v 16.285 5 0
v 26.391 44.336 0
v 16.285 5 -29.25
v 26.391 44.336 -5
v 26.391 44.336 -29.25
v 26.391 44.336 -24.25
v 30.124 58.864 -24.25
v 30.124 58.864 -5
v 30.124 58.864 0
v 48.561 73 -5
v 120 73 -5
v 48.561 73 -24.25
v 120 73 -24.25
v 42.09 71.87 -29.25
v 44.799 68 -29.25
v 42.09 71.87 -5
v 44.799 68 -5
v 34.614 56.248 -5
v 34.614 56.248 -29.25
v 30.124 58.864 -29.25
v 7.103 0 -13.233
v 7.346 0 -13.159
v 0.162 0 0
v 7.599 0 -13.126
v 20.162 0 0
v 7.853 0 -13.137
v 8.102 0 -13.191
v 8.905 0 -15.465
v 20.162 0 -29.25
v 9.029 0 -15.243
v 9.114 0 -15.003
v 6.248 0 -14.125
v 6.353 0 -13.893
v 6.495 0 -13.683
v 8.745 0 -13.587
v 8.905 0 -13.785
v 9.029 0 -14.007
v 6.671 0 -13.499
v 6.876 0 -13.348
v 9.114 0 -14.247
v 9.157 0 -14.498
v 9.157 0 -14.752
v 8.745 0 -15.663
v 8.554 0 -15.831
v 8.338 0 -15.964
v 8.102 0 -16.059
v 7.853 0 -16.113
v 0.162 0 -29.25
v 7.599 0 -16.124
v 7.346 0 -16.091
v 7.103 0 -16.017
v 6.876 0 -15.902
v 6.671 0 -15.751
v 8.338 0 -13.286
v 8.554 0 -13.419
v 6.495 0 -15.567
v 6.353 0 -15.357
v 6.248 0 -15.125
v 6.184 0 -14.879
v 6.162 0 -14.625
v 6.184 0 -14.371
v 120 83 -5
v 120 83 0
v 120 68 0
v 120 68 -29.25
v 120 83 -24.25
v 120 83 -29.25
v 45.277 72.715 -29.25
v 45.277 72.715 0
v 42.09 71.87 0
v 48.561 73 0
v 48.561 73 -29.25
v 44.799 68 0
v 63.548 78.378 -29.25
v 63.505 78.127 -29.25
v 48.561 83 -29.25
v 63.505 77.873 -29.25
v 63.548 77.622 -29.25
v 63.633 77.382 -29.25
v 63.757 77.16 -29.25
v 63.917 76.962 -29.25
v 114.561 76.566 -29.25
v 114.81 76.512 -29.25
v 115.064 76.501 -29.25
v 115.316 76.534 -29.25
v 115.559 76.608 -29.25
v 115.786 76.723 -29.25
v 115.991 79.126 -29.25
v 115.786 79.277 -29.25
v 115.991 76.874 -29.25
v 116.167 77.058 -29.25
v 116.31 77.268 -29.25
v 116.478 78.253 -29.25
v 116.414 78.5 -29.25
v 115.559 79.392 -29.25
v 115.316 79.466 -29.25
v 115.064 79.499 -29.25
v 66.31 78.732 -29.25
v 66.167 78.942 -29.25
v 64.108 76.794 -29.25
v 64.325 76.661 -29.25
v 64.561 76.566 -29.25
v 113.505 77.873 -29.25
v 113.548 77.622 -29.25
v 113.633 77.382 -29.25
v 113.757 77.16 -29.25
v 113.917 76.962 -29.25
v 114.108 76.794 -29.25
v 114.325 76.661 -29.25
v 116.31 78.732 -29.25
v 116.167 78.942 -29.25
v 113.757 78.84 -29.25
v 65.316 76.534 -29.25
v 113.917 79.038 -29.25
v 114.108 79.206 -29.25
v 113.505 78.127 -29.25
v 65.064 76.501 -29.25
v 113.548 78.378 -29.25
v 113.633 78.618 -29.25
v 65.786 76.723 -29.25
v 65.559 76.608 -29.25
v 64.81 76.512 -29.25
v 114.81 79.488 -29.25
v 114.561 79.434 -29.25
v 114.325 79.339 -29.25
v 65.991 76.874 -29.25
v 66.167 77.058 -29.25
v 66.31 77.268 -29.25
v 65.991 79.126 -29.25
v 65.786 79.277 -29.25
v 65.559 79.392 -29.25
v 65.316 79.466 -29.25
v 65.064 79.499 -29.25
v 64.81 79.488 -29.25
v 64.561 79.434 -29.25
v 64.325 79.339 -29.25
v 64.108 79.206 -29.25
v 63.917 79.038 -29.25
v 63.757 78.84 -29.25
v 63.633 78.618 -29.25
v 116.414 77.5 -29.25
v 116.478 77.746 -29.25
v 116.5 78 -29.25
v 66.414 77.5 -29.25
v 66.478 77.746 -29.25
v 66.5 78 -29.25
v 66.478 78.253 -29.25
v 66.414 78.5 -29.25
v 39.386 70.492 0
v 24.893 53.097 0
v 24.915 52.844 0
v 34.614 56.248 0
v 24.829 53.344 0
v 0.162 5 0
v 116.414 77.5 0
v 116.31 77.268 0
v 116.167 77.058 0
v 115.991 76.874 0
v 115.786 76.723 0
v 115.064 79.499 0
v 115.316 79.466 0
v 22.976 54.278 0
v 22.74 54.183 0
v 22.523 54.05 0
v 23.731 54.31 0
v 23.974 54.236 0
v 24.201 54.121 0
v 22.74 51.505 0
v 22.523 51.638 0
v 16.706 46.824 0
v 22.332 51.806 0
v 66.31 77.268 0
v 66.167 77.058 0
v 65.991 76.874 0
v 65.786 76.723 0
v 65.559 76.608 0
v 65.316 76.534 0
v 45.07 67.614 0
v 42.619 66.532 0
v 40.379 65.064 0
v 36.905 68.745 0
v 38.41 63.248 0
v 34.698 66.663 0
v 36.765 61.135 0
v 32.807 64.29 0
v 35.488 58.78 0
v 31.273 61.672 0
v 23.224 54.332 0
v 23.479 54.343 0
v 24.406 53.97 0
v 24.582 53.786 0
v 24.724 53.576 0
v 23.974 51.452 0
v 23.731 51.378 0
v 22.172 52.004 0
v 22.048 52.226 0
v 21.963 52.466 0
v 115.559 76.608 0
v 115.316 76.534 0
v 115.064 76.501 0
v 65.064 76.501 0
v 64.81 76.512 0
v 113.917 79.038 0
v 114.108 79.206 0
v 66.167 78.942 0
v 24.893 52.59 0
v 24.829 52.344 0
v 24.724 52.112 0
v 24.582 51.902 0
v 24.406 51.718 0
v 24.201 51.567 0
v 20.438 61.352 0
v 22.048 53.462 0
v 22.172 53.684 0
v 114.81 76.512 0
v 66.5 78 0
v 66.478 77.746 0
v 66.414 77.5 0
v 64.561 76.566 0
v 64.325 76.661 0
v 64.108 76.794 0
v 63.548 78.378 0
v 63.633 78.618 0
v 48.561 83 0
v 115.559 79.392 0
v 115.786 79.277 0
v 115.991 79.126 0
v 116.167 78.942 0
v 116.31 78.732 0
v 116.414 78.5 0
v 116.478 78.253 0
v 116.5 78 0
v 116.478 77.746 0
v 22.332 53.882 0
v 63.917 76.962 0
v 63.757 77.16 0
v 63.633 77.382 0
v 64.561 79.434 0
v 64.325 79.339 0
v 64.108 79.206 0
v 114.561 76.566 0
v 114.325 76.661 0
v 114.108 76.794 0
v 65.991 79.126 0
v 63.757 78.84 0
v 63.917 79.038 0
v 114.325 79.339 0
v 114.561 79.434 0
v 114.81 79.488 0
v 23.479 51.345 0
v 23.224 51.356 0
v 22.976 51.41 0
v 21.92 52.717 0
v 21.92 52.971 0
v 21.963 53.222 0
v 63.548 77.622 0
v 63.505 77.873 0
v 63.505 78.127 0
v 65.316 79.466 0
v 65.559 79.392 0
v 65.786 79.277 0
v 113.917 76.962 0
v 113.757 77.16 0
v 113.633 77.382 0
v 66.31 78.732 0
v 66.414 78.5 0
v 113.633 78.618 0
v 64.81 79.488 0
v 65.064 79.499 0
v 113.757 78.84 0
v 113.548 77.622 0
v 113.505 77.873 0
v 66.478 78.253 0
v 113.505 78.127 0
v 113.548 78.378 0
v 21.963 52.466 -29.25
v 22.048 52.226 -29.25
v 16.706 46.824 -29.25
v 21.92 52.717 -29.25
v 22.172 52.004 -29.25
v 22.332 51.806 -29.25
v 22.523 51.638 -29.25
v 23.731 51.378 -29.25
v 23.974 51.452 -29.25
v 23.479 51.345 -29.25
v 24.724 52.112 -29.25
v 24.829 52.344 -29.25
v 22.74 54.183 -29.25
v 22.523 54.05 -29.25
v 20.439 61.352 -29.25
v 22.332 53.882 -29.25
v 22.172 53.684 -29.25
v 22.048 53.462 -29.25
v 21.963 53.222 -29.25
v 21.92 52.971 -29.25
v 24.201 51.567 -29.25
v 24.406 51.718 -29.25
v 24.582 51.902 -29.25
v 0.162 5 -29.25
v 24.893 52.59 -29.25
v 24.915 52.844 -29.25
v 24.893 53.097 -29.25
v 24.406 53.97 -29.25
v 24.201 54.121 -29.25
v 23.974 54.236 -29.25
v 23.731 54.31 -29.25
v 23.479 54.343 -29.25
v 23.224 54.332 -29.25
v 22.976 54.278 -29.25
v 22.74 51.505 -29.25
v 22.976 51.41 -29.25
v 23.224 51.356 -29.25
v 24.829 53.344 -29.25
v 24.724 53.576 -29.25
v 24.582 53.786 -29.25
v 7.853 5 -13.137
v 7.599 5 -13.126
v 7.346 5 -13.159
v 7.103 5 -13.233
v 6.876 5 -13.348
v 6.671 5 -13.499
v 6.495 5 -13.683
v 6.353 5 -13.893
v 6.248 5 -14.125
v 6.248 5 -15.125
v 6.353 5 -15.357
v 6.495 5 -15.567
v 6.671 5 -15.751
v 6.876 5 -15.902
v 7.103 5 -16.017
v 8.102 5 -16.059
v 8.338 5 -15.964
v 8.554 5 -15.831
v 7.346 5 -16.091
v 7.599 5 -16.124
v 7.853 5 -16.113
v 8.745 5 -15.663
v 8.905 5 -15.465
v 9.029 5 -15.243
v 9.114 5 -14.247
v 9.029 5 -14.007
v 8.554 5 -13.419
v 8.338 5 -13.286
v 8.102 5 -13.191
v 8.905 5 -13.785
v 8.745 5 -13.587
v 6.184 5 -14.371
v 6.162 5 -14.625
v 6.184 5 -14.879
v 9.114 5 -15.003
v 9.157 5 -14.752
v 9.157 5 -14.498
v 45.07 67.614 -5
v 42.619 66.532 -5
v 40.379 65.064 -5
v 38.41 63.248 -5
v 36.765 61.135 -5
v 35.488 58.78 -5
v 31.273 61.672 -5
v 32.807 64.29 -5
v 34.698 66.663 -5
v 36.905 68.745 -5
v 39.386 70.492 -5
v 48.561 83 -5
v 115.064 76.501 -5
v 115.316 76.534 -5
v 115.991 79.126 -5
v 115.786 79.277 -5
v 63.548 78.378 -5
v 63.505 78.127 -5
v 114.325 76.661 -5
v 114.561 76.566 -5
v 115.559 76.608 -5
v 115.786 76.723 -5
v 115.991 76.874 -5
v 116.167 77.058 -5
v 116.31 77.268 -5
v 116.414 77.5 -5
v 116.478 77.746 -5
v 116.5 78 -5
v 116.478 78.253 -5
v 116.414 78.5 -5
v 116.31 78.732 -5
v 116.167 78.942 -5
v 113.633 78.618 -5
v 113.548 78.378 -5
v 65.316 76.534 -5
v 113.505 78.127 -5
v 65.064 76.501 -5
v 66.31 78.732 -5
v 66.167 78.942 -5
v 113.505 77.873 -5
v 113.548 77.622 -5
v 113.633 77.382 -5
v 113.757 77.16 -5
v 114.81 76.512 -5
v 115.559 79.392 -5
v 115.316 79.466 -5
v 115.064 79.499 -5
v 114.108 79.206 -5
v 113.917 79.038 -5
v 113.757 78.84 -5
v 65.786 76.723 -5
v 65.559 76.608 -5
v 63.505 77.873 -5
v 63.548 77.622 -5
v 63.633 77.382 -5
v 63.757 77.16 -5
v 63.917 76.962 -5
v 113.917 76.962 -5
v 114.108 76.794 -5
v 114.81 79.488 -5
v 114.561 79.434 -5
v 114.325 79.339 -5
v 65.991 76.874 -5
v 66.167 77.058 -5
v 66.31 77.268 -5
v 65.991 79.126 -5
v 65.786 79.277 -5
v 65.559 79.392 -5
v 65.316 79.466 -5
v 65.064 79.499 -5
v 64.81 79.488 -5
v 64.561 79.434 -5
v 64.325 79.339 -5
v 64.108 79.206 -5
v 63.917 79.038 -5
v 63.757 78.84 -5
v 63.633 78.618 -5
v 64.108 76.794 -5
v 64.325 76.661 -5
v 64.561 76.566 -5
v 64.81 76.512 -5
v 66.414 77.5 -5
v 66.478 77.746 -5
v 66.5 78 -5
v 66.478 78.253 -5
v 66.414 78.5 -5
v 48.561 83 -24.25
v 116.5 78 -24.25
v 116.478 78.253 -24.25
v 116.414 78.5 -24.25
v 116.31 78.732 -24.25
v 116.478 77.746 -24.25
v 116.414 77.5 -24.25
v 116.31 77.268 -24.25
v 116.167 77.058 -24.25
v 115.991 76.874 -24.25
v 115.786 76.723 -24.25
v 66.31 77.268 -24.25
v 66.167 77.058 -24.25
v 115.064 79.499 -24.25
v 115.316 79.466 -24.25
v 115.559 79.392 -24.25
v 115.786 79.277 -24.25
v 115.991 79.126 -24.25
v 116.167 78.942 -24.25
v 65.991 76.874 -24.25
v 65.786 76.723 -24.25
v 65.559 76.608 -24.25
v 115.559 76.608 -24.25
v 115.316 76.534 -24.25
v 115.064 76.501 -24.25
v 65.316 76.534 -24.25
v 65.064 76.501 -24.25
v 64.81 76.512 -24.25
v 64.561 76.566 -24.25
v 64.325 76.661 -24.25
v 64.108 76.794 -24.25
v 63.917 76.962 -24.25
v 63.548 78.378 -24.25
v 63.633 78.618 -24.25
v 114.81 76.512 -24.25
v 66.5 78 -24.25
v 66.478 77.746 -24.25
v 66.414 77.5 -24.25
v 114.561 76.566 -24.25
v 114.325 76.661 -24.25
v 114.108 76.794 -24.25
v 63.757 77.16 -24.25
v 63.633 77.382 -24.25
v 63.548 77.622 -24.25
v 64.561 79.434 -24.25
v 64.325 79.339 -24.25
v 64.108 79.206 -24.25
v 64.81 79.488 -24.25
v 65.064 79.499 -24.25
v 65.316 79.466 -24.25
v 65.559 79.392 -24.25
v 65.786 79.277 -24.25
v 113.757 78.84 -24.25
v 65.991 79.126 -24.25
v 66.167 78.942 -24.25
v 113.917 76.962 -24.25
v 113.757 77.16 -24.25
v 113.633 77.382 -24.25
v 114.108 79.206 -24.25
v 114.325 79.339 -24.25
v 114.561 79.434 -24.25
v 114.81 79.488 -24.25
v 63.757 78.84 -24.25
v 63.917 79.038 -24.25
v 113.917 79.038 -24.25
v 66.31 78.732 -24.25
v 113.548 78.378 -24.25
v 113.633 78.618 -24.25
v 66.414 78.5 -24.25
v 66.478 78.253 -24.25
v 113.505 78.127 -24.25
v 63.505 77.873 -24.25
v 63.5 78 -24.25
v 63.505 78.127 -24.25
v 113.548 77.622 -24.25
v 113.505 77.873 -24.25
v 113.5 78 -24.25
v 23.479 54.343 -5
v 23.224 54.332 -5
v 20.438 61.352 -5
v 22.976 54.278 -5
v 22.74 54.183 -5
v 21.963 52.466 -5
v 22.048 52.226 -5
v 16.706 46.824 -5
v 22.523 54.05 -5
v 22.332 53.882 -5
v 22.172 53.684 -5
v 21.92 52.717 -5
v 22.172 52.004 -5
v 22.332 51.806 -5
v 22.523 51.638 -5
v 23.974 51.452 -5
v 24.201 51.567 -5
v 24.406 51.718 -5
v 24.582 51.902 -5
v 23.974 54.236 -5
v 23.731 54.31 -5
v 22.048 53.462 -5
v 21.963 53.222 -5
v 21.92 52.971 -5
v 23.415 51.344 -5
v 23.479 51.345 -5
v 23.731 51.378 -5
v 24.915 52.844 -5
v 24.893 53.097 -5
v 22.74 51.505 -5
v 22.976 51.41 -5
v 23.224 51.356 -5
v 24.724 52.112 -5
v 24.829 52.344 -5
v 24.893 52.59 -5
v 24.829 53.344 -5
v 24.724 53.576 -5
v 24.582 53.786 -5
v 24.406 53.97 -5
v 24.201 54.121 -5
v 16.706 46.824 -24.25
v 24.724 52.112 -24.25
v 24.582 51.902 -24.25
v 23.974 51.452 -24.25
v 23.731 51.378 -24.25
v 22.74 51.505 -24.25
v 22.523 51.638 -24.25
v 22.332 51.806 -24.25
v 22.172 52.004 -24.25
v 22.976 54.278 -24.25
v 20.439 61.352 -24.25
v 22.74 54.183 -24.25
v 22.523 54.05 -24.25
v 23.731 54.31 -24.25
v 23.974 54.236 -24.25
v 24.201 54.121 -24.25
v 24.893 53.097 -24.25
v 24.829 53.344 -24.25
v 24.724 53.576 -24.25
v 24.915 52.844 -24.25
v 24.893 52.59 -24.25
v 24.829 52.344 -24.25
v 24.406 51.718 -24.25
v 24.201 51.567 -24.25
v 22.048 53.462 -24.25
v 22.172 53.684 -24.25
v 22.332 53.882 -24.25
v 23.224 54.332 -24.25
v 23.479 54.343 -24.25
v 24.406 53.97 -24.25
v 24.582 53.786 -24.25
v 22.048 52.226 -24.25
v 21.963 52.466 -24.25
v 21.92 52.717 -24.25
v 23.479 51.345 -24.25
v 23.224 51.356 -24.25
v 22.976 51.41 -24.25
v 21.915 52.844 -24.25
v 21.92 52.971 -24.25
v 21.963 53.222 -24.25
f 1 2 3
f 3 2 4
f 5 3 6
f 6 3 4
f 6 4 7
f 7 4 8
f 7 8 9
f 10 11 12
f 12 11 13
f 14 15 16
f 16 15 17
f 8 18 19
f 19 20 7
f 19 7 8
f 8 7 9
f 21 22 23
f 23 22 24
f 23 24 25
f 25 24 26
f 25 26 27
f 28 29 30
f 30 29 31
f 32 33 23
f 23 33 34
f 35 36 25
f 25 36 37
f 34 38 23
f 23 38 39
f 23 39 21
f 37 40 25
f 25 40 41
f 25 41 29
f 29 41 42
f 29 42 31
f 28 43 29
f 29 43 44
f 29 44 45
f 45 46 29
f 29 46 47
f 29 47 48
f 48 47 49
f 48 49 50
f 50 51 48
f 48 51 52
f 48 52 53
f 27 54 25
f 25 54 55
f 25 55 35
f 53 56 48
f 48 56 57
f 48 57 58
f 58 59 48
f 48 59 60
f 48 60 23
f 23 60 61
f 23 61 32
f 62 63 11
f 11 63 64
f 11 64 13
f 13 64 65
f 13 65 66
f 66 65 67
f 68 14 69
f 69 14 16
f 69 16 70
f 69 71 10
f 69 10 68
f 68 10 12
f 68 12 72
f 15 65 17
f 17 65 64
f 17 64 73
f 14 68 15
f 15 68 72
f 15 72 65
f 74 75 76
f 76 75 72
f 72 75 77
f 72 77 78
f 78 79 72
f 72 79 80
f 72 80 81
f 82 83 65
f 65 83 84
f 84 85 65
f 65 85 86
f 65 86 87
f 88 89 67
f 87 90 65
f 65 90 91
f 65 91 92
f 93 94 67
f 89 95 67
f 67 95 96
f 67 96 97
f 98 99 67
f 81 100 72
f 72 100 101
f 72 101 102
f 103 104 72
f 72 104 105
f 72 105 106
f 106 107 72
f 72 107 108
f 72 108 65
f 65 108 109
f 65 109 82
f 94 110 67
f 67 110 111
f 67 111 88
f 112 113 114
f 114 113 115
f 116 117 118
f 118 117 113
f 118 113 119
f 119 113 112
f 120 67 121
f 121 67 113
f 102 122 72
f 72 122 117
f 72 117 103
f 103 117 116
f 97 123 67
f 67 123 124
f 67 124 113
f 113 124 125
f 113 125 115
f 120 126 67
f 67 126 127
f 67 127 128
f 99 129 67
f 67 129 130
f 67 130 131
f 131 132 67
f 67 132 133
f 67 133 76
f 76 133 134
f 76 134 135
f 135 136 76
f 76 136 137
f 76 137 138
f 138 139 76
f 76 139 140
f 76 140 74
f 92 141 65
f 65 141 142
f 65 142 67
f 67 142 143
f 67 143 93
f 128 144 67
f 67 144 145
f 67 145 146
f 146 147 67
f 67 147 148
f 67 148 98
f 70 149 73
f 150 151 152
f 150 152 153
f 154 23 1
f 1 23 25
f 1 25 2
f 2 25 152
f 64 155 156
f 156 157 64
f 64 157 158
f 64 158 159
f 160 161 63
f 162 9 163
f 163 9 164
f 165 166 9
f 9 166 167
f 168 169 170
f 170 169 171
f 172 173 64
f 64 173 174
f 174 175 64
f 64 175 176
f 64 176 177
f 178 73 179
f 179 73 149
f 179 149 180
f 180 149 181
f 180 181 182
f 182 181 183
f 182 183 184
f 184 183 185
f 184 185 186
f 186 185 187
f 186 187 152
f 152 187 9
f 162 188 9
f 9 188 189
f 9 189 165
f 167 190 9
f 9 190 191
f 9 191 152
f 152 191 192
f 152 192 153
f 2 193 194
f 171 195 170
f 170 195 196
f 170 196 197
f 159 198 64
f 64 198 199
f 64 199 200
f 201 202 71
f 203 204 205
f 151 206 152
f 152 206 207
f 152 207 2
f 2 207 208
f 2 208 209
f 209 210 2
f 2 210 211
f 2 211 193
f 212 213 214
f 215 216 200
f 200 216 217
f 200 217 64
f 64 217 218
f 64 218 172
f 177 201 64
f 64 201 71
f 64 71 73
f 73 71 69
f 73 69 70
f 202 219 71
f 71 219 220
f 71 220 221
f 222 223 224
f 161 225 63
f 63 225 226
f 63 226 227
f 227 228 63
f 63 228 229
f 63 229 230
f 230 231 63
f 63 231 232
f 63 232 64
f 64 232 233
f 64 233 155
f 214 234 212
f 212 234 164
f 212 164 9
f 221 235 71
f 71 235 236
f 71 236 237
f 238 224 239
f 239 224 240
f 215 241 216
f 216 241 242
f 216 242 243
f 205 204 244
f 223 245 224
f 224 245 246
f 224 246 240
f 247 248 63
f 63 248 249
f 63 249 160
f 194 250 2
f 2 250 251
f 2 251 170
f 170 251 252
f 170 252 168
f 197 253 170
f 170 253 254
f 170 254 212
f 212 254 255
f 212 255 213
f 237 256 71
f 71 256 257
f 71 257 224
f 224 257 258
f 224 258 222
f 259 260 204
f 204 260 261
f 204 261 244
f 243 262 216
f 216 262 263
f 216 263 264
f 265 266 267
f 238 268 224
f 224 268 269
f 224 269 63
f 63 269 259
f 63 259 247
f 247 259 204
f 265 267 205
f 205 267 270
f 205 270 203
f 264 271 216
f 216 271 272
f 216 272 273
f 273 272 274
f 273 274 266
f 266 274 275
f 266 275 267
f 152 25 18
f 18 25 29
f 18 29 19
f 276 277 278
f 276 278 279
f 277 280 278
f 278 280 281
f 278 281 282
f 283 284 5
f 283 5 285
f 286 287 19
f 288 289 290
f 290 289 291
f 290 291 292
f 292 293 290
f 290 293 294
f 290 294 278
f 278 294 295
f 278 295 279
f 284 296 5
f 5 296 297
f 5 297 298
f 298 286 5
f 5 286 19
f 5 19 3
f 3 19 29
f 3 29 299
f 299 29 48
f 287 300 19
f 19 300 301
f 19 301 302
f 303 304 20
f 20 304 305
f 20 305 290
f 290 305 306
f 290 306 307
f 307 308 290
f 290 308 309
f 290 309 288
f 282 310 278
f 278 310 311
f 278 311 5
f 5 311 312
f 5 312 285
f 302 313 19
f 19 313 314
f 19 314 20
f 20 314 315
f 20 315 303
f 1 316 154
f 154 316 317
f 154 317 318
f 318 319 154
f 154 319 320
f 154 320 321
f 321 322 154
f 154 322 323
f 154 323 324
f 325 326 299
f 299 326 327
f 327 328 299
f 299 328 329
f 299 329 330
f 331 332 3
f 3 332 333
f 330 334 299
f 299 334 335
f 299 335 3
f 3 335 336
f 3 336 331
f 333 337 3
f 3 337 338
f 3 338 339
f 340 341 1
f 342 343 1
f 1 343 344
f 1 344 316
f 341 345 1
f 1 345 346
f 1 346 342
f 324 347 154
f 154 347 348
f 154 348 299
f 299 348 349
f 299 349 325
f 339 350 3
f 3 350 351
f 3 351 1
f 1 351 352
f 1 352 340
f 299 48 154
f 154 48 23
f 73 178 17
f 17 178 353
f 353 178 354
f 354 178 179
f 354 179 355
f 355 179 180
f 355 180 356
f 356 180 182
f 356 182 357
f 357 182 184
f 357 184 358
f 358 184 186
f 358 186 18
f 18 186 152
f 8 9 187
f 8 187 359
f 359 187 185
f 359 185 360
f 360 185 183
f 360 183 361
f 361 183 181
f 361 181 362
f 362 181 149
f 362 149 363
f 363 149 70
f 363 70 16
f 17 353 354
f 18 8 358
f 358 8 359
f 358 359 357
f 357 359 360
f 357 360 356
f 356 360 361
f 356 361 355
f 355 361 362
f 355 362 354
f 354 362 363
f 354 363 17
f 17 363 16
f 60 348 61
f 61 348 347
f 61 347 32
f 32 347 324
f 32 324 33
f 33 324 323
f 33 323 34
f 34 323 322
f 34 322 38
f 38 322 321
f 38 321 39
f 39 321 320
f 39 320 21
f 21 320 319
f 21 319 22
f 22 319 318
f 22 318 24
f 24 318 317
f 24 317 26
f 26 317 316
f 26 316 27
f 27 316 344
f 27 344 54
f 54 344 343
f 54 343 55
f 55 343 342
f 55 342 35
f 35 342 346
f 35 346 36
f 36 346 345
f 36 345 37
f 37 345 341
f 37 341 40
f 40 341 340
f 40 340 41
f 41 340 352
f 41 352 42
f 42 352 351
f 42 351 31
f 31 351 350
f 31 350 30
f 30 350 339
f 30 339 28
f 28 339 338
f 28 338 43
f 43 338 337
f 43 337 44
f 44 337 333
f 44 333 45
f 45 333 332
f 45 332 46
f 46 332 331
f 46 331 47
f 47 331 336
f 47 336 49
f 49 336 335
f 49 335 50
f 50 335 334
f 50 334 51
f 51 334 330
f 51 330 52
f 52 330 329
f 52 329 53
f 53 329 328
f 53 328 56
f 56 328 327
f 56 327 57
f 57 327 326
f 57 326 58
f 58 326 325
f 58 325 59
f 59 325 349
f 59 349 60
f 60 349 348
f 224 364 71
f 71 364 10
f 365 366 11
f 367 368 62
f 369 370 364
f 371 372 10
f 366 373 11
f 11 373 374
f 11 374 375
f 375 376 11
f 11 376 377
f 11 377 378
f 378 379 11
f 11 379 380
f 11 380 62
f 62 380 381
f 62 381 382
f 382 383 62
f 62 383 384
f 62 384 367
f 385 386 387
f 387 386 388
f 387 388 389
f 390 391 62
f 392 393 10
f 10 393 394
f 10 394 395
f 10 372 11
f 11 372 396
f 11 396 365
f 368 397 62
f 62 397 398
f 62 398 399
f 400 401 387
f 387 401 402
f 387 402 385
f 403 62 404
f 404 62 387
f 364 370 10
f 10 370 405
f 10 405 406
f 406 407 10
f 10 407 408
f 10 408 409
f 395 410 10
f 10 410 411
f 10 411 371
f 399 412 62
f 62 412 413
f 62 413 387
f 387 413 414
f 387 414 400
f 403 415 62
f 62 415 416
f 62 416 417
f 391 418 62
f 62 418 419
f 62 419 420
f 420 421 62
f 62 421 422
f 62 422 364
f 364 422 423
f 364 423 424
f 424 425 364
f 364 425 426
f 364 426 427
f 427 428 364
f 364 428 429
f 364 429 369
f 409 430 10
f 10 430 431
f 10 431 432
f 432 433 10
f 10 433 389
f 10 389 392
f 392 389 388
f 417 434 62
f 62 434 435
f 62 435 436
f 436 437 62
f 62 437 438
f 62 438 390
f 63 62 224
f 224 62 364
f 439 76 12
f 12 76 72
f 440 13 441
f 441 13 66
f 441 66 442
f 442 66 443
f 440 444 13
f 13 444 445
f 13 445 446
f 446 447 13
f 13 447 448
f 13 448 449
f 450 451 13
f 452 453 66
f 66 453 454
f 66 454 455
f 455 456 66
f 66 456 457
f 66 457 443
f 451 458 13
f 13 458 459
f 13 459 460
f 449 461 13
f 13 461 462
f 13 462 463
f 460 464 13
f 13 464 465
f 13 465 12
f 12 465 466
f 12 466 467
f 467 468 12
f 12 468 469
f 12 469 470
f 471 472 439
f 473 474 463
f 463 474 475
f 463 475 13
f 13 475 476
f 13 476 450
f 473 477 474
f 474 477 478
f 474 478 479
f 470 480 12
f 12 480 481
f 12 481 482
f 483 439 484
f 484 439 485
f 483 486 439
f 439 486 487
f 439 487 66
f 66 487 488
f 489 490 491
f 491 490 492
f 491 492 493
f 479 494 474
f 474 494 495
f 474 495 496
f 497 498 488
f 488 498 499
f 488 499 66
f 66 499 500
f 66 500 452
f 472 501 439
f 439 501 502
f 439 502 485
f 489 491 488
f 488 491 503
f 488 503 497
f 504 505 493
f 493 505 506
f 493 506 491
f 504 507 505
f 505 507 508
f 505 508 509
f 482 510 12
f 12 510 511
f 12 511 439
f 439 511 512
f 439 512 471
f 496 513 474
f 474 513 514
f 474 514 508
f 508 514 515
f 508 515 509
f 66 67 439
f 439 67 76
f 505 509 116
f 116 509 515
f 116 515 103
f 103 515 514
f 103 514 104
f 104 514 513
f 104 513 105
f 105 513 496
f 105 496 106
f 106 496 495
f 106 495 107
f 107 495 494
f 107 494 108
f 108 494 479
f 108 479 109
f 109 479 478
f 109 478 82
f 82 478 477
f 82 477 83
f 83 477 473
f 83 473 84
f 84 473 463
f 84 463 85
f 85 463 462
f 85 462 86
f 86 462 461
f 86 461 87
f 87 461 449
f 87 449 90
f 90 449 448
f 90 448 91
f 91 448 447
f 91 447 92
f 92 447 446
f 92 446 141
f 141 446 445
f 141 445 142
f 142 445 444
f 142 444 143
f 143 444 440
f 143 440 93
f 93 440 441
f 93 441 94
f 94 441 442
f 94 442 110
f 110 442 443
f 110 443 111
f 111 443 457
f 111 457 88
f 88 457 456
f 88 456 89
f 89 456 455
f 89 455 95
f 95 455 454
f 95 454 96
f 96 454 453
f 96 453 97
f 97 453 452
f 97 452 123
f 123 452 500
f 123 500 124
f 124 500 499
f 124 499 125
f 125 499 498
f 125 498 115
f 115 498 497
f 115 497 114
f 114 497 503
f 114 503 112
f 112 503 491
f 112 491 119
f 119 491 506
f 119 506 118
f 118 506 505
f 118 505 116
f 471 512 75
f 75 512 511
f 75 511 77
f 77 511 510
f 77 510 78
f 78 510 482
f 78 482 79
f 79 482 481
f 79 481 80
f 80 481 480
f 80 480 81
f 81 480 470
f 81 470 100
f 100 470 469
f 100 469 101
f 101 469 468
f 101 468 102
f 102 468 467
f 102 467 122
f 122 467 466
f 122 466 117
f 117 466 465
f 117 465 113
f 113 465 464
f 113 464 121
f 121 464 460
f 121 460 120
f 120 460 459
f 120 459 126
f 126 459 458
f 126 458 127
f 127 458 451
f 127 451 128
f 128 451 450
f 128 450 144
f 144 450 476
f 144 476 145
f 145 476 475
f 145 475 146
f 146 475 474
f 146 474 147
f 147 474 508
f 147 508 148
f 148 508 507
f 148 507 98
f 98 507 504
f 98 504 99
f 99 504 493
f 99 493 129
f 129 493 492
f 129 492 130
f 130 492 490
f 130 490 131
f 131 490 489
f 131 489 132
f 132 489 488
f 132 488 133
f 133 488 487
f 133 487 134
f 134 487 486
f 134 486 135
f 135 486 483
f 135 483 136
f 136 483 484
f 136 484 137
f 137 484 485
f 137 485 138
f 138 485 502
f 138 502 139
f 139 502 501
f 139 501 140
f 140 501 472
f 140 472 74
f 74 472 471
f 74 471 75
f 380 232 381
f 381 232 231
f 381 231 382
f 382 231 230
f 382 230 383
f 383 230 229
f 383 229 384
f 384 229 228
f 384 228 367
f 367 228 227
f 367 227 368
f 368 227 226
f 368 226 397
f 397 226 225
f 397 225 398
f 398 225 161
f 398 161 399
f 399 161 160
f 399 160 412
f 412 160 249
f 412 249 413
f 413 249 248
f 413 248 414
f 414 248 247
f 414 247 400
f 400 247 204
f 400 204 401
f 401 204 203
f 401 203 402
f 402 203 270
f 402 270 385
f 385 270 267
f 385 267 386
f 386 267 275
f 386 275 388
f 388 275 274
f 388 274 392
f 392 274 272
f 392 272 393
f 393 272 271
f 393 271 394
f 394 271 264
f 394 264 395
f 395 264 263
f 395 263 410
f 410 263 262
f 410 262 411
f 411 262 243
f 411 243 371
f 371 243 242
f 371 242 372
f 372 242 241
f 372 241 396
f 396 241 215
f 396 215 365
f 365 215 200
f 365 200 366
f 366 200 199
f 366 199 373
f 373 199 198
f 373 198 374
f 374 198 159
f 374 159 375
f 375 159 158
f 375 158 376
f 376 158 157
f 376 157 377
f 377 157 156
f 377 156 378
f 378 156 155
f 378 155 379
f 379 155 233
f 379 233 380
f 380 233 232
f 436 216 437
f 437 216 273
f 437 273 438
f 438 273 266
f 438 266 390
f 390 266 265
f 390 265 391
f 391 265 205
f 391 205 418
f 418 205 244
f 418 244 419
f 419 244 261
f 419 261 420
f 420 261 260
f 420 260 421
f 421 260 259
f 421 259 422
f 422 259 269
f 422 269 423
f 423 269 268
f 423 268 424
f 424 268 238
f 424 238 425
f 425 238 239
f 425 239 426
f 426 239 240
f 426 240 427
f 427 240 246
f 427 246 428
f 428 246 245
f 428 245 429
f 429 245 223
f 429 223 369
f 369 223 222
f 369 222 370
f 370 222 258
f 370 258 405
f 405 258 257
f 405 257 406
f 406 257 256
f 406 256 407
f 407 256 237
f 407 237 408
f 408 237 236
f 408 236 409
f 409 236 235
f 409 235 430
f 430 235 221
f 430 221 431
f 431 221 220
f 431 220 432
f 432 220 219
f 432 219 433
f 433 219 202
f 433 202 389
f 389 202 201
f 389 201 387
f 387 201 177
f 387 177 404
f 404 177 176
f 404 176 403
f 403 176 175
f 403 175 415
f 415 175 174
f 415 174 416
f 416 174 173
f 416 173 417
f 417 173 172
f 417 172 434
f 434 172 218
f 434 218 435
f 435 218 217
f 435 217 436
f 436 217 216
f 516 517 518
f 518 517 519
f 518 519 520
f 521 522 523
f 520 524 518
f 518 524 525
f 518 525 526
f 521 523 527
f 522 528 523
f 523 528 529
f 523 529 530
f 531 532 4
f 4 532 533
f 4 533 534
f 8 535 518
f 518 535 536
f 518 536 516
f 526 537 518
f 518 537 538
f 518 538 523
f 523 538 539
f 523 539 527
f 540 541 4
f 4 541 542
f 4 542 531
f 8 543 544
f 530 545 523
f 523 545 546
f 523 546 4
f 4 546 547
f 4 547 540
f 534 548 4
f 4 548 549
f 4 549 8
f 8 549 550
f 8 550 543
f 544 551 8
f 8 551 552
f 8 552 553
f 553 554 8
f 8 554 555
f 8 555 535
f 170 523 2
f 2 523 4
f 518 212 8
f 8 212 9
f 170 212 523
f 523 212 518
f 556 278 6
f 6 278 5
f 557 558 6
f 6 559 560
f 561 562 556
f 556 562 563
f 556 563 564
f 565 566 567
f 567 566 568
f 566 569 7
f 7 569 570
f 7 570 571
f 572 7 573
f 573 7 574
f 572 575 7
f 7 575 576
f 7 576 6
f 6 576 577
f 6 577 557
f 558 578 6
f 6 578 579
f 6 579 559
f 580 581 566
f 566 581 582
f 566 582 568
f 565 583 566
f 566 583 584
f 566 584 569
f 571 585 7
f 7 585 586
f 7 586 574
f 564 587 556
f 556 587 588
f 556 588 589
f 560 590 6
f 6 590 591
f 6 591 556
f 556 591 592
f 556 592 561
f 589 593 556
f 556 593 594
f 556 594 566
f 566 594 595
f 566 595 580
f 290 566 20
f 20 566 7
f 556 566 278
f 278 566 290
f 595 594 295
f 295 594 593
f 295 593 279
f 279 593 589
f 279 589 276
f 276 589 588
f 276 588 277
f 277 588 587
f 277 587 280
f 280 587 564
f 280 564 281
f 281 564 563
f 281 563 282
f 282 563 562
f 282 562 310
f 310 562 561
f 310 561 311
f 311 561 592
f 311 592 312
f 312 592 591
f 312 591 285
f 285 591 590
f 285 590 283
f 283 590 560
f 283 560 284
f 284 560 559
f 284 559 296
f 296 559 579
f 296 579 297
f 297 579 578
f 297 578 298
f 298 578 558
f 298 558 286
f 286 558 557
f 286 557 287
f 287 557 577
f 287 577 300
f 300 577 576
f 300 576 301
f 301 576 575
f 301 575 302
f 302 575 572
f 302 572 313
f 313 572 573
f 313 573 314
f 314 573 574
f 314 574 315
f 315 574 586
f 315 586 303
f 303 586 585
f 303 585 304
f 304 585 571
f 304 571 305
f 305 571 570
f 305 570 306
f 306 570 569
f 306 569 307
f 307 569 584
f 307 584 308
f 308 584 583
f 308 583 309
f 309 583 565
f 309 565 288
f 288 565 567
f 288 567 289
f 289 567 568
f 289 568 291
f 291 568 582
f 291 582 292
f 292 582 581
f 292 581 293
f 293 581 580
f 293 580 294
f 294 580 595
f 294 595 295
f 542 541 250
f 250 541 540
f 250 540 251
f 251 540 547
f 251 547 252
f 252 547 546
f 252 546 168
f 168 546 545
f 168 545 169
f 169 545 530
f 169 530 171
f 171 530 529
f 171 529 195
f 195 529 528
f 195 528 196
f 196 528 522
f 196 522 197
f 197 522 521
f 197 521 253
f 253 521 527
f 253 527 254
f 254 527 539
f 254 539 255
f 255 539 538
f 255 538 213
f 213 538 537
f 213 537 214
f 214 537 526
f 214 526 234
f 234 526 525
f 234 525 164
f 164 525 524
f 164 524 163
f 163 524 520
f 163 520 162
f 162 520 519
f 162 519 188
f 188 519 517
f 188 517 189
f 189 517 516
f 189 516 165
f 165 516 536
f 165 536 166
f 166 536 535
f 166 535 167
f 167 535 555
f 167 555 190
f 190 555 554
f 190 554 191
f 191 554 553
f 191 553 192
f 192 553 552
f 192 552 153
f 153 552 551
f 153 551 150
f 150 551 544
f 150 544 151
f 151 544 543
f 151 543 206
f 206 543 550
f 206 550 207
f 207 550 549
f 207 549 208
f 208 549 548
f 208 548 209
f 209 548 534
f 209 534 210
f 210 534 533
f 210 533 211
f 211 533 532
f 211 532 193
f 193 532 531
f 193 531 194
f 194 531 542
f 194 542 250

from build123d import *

# Parameters (mm, degrees)
SKETCH1_W               = 120
SKETCH1_H               = 100
BOSS_EXTRUDE1_DEPTH     = 5
SKETCH2_R               = 2.5
CUT_EXTRUDE1_DEPTH      = 6
CUT_EXTRUDE3_DEPTH      = 10
BOSS_EXTRUDE3_DEPTH     = 29.25
SKETCH8_W               = 20
SKETCH8_H               = 5
BOSS_EXTRUDE4_DEPTH     = 34.25
BOSS_EXTRUDE5_DEPTH     = 5
SKETCH11_W              = 5
SKETCH11_H              = 73
CUT_EXTRUDE6_DEPTH      = 1
CUT_EXTRUDE6_DEPTH_BACK = 120.837603572
SKETCH12_R              = 1.5
CUT_EXTRUDE7_DEPTH      = 69
CUT_EXTRUDE7_DEPTH_BACK = 6
SKETCH13_W              = 71.438611392
SKETCH13_H              = 5
BOSS_EXTRUDE6_DEPTH     = 10
SKETCH14_R              = 1.5
CUT_EXTRUDE8_DEPTH      = 30.25
SKETCH15_W              = 5
SKETCH15_H              = 14.999673458
SKETCH15_H_2            = 15
BOSS_EXTRUDE7_DEPTH     = 10
SKETCH17_R              = 1.5
CUT_EXTRUDE9_DEPTH      = 30.25


with BuildPart() as part:
    # Sketch1 → Boss-Extrude1 (new body)
    with BuildSketch(Plane.XY):
        with Locations((60, 50)):
            Rectangle(SKETCH1_W, SKETCH1_H)
    extrude(amount=BOSS_EXTRUDE1_DEPTH)

    # Sketch2 → Cut-Extrude1 (cut, through all)
    with BuildSketch(Plane.XY.offset(5)):
        with Locations((48.561388608, 53.909722104)):
            Circle(SKETCH2_R)
        with BuildLine():
            ThreePointArc((83.119368898, 4.555811435), (92.903152754, 13.119153924), (100.621925378, 23.582127225))
            ThreePointArc((100.621925378, 23.582127225), (96.02283809, 41.016960064), (78.588005251, 36.417872775))
            ThreePointArc((78.588005251, 36.417872775), (74.136099049, 30.383211826), (68.493169771, 25.444188565))
            ThreePointArc((68.493169771, 25.444188565), (65.36208077, 7.686900437), (83.119368898, 4.555811435))
        make_face()
    extrude(amount=-CUT_EXTRUDE1_DEPTH, mode=Mode.SUBTRACT)

    # Sketch5 → Cut-Extrude3 (cut)
    with BuildSketch(Plane.XY.offset(5)):
        with BuildLine():
            Line((120, 73), (48.561388608, 73))
            ThreePointArc((48.561388608, 73), (36.862057433, 68.994958603), (30.071644393, 58.660308282))
            Line((30.071644393, 58.660308282), (15, 0))
            Line((15, 0), (0, 0))
            Line((0, 0), (0, 100))
            Line((0, 100), (120, 100))
            Line((120, 100), (120, 73))
        make_face()
    extrude(amount=-CUT_EXTRUDE3_DEPTH, mode=Mode.SUBTRACT)

    # Sketch7 → Boss-Extrude3 (add)
    with BuildSketch(Plane(origin=(0, 0, 0), x_dir=(-1, 0, 0), z_dir=(0, 0, -1))):
        Polygon((-15, 0), (-30.123935814, 58.863831587), (-34.614250087, 56.248022366), (-20.162396428, 0), align=None)
        with BuildLine():
            Line((-120, 73), (-48.561388608, 73))
            ThreePointArc((-48.561388608, 73), (-45.276527497, 72.715263777), (-42.089655421, 71.869548932))
            Line((-42.089655421, 71.869548932), (-44.799142753, 68))
            Line((-44.799142753, 68), (-120, 68))
            Line((-120, 68), (-120, 73))
        make_face()
    extrude(amount=BOSS_EXTRUDE3_DEPTH)

    # Sketch8 → Boss-Extrude4 (add, through all)
    with BuildSketch(Plane(origin=(0, 0, -29.25), x_dir=(-1, 0, 0), z_dir=(0, 0, -1))):
        with Locations((-10.162396428, 2.5)):
            Rectangle(SKETCH8_W, SKETCH8_H)
    extrude(amount=-BOSS_EXTRUDE4_DEPTH)

    # Sketch10 → Boss-Extrude5 (add)
    with BuildSketch(Plane(origin=(0, 0, 0), x_dir=(-1, 0, 0), z_dir=(0, 0, -1))):
        with BuildLine():
            Line((-45.069655622, 67.613667586), (-42.089655421, 71.869548932))
            ThreePointArc((-42.089655421, 71.869548932), (-34.697505551, 66.663289264), (-30.124971237, 58.863228407))
            Line((-30.124971237, 58.863228407), (-34.614250087, 56.248022366))
            ThreePointArc((-34.614250087, 56.248022366), (-38.409874026, 63.248233001), (-45.069655622, 67.613667586))
        make_face()
    extrude(amount=BOSS_EXTRUDE5_DEPTH)

    # Sketch11 → Cut-Extrude6 (cut, two sides)
    with BuildSketch(Plane(origin=(120, 0, 0), x_dir=(0, 0, -1), z_dir=(1, 0, 0))) as cut_extrude6_sk:
        with Locations((-2.5, 36.5)):
            Rectangle(SKETCH11_W, SKETCH11_H)
    extrude(amount=CUT_EXTRUDE6_DEPTH, mode=Mode.SUBTRACT)
    extrude(cut_extrude6_sk.sketch, amount=-CUT_EXTRUDE6_DEPTH_BACK, mode=Mode.SUBTRACT)

    # Sketch12 → Cut-Extrude7 (cut, two sides)
    with BuildSketch(Plane(origin=(0, 5, 0), x_dir=(1, 0, 0), z_dir=(0, 1, 0))) as cut_extrude7_sk:
        with Locations((7.662396428, 14.625)):
            Circle(SKETCH12_R)
    extrude(amount=CUT_EXTRUDE7_DEPTH, mode=Mode.SUBTRACT)
    extrude(cut_extrude7_sk.sketch, amount=-CUT_EXTRUDE7_DEPTH_BACK, mode=Mode.SUBTRACT)

    # Sketch13 → Boss-Extrude6 (add)
    with BuildSketch(Plane(origin=(0, 73, 0), x_dir=(1, 0, 0), z_dir=(0, 1, 0))):
        with Locations((84.280694304, 2.5)):
            Rectangle(SKETCH13_W, SKETCH13_H)
        with Locations((84.280694304, 26.75)):
            Rectangle(SKETCH13_W, SKETCH13_H)
    extrude(amount=BOSS_EXTRUDE6_DEPTH)

    # Sketch14 → Cut-Extrude8 (cut, through all)
    with BuildSketch(Plane.XY):
        with Locations((65, 78)):
            Circle(SKETCH14_R)
        with Locations((115, 78)):
            Circle(SKETCH14_R)
    extrude(amount=-CUT_EXTRUDE8_DEPTH, mode=Mode.SUBTRACT)

    # Sketch15 → Boss-Extrude7 (add)
    with BuildSketch(Plane(origin=(14.07111669, -3.615304337, 0), x_dir=(0, 0, 1), z_dir=(-0.968542434, 0.248848456, 0))):
        with Locations((-2.5, 57.008250348)):
            Rectangle(SKETCH15_W, SKETCH15_H)
        with Locations((-26.75, 57.008413619)):
            Rectangle(SKETCH15_W, SKETCH15_H_2)
    extrude(amount=BOSS_EXTRUDE7_DEPTH)

    # Sketch17 → Cut-Extrude9 (cut, through all)
    with BuildSketch(Plane.XY):
        with Locations((23.414860226, 52.844005614)):
            Circle(SKETCH17_R)
    extrude(amount=-CUT_EXTRUDE9_DEPTH, mode=Mode.SUBTRACT)


solid = part.part
